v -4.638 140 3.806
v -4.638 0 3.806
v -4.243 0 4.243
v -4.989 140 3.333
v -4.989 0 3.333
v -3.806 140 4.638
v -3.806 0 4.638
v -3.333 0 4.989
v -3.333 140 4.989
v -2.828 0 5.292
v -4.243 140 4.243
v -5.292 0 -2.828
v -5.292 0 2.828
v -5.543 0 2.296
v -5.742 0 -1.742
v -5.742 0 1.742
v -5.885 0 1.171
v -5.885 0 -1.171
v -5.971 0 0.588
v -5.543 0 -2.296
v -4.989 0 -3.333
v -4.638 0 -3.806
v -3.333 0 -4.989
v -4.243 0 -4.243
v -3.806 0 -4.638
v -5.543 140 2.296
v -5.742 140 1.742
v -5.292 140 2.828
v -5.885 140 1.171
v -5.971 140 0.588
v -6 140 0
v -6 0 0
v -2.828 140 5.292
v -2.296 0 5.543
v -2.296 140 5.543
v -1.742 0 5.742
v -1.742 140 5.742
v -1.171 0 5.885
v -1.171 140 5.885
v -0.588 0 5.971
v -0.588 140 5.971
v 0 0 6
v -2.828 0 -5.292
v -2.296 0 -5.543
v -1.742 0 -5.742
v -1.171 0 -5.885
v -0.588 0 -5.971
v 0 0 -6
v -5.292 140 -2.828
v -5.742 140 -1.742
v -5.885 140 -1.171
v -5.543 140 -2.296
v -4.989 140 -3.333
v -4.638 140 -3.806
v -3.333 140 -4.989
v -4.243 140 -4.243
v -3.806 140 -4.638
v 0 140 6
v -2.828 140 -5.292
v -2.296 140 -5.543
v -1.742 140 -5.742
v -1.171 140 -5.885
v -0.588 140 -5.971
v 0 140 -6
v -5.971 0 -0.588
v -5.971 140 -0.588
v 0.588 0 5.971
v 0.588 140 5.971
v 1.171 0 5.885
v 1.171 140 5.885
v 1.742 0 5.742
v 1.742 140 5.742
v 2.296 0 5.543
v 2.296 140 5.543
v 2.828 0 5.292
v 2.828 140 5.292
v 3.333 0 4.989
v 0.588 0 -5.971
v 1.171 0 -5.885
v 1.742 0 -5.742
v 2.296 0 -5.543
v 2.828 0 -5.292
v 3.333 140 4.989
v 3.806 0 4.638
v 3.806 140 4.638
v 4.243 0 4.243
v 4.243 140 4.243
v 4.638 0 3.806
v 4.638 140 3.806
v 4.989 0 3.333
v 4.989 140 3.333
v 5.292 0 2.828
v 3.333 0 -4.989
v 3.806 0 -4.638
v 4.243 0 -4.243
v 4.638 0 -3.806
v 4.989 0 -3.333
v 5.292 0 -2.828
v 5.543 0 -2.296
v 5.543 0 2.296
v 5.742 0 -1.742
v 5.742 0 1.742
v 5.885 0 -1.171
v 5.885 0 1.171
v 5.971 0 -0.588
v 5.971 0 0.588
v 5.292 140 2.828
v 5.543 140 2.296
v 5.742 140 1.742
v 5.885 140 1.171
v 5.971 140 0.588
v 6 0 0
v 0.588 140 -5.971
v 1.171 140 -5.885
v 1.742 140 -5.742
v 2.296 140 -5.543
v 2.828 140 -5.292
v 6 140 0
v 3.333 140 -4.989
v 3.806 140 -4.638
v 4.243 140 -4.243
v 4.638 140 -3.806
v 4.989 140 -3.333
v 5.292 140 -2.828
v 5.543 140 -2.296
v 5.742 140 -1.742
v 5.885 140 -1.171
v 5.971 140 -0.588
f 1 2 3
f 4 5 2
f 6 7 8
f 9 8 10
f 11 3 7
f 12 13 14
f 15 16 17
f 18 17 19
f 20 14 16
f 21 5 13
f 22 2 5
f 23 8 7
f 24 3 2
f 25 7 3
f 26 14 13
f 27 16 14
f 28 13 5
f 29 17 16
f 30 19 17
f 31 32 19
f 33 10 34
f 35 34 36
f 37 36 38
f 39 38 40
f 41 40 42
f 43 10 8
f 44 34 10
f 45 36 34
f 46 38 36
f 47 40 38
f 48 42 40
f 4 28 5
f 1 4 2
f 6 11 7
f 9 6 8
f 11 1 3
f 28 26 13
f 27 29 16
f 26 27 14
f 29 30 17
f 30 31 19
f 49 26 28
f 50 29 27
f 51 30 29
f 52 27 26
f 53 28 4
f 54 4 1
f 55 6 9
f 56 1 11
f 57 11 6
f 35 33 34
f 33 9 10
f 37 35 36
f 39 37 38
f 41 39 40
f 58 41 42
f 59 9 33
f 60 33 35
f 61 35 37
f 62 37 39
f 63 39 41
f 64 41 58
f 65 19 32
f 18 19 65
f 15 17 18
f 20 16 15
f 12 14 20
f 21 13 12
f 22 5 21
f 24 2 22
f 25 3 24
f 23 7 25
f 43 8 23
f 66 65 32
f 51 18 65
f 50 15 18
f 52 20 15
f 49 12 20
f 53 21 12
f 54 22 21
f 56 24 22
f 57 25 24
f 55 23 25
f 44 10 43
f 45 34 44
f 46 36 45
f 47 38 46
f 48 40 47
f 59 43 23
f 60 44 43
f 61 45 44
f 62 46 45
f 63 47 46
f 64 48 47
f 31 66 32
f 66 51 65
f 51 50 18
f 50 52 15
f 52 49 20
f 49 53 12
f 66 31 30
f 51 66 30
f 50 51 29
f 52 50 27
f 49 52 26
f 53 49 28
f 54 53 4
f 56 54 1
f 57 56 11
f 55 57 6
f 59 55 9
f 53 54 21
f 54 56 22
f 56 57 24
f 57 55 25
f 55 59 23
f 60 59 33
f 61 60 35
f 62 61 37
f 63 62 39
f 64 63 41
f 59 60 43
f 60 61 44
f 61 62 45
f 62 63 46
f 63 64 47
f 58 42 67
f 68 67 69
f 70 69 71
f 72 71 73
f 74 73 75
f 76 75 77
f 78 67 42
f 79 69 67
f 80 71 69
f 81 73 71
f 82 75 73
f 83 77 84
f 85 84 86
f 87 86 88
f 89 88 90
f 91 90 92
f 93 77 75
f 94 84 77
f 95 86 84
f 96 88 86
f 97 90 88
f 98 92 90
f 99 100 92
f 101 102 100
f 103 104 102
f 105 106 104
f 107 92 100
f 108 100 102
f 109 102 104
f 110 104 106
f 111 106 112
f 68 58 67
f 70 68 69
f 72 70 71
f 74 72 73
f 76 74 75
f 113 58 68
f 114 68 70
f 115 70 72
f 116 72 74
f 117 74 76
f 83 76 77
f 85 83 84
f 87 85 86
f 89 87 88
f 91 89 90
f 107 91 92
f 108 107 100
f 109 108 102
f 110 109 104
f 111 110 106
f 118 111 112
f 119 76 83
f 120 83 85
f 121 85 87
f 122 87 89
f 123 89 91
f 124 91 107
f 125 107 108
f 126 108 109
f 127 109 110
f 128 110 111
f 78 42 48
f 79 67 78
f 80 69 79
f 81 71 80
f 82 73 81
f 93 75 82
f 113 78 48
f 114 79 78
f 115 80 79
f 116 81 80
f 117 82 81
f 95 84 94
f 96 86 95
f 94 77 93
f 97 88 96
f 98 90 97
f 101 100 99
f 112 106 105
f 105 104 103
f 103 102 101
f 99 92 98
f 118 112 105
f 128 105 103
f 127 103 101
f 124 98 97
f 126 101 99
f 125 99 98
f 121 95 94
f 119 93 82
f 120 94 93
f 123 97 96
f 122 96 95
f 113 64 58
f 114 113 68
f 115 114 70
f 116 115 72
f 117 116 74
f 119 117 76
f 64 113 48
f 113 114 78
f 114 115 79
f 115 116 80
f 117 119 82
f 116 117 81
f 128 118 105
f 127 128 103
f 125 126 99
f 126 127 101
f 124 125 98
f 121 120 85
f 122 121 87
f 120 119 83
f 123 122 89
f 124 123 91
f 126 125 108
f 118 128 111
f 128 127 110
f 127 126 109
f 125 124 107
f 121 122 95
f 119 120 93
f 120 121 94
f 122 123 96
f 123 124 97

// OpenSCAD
// Thick patterned marker
// Geometry follows the holder clearance profile. Its dimensions describe the pocket used in the source design. Physical tool dimensions and fit have yet to be measured.
// Units: mm
$fn = 64;
union() {
    translate([0, 0, 0]) rotate([-90, 0, 0])
        cylinder(h=140, r1=6, r2=6, $fn=64);
}
